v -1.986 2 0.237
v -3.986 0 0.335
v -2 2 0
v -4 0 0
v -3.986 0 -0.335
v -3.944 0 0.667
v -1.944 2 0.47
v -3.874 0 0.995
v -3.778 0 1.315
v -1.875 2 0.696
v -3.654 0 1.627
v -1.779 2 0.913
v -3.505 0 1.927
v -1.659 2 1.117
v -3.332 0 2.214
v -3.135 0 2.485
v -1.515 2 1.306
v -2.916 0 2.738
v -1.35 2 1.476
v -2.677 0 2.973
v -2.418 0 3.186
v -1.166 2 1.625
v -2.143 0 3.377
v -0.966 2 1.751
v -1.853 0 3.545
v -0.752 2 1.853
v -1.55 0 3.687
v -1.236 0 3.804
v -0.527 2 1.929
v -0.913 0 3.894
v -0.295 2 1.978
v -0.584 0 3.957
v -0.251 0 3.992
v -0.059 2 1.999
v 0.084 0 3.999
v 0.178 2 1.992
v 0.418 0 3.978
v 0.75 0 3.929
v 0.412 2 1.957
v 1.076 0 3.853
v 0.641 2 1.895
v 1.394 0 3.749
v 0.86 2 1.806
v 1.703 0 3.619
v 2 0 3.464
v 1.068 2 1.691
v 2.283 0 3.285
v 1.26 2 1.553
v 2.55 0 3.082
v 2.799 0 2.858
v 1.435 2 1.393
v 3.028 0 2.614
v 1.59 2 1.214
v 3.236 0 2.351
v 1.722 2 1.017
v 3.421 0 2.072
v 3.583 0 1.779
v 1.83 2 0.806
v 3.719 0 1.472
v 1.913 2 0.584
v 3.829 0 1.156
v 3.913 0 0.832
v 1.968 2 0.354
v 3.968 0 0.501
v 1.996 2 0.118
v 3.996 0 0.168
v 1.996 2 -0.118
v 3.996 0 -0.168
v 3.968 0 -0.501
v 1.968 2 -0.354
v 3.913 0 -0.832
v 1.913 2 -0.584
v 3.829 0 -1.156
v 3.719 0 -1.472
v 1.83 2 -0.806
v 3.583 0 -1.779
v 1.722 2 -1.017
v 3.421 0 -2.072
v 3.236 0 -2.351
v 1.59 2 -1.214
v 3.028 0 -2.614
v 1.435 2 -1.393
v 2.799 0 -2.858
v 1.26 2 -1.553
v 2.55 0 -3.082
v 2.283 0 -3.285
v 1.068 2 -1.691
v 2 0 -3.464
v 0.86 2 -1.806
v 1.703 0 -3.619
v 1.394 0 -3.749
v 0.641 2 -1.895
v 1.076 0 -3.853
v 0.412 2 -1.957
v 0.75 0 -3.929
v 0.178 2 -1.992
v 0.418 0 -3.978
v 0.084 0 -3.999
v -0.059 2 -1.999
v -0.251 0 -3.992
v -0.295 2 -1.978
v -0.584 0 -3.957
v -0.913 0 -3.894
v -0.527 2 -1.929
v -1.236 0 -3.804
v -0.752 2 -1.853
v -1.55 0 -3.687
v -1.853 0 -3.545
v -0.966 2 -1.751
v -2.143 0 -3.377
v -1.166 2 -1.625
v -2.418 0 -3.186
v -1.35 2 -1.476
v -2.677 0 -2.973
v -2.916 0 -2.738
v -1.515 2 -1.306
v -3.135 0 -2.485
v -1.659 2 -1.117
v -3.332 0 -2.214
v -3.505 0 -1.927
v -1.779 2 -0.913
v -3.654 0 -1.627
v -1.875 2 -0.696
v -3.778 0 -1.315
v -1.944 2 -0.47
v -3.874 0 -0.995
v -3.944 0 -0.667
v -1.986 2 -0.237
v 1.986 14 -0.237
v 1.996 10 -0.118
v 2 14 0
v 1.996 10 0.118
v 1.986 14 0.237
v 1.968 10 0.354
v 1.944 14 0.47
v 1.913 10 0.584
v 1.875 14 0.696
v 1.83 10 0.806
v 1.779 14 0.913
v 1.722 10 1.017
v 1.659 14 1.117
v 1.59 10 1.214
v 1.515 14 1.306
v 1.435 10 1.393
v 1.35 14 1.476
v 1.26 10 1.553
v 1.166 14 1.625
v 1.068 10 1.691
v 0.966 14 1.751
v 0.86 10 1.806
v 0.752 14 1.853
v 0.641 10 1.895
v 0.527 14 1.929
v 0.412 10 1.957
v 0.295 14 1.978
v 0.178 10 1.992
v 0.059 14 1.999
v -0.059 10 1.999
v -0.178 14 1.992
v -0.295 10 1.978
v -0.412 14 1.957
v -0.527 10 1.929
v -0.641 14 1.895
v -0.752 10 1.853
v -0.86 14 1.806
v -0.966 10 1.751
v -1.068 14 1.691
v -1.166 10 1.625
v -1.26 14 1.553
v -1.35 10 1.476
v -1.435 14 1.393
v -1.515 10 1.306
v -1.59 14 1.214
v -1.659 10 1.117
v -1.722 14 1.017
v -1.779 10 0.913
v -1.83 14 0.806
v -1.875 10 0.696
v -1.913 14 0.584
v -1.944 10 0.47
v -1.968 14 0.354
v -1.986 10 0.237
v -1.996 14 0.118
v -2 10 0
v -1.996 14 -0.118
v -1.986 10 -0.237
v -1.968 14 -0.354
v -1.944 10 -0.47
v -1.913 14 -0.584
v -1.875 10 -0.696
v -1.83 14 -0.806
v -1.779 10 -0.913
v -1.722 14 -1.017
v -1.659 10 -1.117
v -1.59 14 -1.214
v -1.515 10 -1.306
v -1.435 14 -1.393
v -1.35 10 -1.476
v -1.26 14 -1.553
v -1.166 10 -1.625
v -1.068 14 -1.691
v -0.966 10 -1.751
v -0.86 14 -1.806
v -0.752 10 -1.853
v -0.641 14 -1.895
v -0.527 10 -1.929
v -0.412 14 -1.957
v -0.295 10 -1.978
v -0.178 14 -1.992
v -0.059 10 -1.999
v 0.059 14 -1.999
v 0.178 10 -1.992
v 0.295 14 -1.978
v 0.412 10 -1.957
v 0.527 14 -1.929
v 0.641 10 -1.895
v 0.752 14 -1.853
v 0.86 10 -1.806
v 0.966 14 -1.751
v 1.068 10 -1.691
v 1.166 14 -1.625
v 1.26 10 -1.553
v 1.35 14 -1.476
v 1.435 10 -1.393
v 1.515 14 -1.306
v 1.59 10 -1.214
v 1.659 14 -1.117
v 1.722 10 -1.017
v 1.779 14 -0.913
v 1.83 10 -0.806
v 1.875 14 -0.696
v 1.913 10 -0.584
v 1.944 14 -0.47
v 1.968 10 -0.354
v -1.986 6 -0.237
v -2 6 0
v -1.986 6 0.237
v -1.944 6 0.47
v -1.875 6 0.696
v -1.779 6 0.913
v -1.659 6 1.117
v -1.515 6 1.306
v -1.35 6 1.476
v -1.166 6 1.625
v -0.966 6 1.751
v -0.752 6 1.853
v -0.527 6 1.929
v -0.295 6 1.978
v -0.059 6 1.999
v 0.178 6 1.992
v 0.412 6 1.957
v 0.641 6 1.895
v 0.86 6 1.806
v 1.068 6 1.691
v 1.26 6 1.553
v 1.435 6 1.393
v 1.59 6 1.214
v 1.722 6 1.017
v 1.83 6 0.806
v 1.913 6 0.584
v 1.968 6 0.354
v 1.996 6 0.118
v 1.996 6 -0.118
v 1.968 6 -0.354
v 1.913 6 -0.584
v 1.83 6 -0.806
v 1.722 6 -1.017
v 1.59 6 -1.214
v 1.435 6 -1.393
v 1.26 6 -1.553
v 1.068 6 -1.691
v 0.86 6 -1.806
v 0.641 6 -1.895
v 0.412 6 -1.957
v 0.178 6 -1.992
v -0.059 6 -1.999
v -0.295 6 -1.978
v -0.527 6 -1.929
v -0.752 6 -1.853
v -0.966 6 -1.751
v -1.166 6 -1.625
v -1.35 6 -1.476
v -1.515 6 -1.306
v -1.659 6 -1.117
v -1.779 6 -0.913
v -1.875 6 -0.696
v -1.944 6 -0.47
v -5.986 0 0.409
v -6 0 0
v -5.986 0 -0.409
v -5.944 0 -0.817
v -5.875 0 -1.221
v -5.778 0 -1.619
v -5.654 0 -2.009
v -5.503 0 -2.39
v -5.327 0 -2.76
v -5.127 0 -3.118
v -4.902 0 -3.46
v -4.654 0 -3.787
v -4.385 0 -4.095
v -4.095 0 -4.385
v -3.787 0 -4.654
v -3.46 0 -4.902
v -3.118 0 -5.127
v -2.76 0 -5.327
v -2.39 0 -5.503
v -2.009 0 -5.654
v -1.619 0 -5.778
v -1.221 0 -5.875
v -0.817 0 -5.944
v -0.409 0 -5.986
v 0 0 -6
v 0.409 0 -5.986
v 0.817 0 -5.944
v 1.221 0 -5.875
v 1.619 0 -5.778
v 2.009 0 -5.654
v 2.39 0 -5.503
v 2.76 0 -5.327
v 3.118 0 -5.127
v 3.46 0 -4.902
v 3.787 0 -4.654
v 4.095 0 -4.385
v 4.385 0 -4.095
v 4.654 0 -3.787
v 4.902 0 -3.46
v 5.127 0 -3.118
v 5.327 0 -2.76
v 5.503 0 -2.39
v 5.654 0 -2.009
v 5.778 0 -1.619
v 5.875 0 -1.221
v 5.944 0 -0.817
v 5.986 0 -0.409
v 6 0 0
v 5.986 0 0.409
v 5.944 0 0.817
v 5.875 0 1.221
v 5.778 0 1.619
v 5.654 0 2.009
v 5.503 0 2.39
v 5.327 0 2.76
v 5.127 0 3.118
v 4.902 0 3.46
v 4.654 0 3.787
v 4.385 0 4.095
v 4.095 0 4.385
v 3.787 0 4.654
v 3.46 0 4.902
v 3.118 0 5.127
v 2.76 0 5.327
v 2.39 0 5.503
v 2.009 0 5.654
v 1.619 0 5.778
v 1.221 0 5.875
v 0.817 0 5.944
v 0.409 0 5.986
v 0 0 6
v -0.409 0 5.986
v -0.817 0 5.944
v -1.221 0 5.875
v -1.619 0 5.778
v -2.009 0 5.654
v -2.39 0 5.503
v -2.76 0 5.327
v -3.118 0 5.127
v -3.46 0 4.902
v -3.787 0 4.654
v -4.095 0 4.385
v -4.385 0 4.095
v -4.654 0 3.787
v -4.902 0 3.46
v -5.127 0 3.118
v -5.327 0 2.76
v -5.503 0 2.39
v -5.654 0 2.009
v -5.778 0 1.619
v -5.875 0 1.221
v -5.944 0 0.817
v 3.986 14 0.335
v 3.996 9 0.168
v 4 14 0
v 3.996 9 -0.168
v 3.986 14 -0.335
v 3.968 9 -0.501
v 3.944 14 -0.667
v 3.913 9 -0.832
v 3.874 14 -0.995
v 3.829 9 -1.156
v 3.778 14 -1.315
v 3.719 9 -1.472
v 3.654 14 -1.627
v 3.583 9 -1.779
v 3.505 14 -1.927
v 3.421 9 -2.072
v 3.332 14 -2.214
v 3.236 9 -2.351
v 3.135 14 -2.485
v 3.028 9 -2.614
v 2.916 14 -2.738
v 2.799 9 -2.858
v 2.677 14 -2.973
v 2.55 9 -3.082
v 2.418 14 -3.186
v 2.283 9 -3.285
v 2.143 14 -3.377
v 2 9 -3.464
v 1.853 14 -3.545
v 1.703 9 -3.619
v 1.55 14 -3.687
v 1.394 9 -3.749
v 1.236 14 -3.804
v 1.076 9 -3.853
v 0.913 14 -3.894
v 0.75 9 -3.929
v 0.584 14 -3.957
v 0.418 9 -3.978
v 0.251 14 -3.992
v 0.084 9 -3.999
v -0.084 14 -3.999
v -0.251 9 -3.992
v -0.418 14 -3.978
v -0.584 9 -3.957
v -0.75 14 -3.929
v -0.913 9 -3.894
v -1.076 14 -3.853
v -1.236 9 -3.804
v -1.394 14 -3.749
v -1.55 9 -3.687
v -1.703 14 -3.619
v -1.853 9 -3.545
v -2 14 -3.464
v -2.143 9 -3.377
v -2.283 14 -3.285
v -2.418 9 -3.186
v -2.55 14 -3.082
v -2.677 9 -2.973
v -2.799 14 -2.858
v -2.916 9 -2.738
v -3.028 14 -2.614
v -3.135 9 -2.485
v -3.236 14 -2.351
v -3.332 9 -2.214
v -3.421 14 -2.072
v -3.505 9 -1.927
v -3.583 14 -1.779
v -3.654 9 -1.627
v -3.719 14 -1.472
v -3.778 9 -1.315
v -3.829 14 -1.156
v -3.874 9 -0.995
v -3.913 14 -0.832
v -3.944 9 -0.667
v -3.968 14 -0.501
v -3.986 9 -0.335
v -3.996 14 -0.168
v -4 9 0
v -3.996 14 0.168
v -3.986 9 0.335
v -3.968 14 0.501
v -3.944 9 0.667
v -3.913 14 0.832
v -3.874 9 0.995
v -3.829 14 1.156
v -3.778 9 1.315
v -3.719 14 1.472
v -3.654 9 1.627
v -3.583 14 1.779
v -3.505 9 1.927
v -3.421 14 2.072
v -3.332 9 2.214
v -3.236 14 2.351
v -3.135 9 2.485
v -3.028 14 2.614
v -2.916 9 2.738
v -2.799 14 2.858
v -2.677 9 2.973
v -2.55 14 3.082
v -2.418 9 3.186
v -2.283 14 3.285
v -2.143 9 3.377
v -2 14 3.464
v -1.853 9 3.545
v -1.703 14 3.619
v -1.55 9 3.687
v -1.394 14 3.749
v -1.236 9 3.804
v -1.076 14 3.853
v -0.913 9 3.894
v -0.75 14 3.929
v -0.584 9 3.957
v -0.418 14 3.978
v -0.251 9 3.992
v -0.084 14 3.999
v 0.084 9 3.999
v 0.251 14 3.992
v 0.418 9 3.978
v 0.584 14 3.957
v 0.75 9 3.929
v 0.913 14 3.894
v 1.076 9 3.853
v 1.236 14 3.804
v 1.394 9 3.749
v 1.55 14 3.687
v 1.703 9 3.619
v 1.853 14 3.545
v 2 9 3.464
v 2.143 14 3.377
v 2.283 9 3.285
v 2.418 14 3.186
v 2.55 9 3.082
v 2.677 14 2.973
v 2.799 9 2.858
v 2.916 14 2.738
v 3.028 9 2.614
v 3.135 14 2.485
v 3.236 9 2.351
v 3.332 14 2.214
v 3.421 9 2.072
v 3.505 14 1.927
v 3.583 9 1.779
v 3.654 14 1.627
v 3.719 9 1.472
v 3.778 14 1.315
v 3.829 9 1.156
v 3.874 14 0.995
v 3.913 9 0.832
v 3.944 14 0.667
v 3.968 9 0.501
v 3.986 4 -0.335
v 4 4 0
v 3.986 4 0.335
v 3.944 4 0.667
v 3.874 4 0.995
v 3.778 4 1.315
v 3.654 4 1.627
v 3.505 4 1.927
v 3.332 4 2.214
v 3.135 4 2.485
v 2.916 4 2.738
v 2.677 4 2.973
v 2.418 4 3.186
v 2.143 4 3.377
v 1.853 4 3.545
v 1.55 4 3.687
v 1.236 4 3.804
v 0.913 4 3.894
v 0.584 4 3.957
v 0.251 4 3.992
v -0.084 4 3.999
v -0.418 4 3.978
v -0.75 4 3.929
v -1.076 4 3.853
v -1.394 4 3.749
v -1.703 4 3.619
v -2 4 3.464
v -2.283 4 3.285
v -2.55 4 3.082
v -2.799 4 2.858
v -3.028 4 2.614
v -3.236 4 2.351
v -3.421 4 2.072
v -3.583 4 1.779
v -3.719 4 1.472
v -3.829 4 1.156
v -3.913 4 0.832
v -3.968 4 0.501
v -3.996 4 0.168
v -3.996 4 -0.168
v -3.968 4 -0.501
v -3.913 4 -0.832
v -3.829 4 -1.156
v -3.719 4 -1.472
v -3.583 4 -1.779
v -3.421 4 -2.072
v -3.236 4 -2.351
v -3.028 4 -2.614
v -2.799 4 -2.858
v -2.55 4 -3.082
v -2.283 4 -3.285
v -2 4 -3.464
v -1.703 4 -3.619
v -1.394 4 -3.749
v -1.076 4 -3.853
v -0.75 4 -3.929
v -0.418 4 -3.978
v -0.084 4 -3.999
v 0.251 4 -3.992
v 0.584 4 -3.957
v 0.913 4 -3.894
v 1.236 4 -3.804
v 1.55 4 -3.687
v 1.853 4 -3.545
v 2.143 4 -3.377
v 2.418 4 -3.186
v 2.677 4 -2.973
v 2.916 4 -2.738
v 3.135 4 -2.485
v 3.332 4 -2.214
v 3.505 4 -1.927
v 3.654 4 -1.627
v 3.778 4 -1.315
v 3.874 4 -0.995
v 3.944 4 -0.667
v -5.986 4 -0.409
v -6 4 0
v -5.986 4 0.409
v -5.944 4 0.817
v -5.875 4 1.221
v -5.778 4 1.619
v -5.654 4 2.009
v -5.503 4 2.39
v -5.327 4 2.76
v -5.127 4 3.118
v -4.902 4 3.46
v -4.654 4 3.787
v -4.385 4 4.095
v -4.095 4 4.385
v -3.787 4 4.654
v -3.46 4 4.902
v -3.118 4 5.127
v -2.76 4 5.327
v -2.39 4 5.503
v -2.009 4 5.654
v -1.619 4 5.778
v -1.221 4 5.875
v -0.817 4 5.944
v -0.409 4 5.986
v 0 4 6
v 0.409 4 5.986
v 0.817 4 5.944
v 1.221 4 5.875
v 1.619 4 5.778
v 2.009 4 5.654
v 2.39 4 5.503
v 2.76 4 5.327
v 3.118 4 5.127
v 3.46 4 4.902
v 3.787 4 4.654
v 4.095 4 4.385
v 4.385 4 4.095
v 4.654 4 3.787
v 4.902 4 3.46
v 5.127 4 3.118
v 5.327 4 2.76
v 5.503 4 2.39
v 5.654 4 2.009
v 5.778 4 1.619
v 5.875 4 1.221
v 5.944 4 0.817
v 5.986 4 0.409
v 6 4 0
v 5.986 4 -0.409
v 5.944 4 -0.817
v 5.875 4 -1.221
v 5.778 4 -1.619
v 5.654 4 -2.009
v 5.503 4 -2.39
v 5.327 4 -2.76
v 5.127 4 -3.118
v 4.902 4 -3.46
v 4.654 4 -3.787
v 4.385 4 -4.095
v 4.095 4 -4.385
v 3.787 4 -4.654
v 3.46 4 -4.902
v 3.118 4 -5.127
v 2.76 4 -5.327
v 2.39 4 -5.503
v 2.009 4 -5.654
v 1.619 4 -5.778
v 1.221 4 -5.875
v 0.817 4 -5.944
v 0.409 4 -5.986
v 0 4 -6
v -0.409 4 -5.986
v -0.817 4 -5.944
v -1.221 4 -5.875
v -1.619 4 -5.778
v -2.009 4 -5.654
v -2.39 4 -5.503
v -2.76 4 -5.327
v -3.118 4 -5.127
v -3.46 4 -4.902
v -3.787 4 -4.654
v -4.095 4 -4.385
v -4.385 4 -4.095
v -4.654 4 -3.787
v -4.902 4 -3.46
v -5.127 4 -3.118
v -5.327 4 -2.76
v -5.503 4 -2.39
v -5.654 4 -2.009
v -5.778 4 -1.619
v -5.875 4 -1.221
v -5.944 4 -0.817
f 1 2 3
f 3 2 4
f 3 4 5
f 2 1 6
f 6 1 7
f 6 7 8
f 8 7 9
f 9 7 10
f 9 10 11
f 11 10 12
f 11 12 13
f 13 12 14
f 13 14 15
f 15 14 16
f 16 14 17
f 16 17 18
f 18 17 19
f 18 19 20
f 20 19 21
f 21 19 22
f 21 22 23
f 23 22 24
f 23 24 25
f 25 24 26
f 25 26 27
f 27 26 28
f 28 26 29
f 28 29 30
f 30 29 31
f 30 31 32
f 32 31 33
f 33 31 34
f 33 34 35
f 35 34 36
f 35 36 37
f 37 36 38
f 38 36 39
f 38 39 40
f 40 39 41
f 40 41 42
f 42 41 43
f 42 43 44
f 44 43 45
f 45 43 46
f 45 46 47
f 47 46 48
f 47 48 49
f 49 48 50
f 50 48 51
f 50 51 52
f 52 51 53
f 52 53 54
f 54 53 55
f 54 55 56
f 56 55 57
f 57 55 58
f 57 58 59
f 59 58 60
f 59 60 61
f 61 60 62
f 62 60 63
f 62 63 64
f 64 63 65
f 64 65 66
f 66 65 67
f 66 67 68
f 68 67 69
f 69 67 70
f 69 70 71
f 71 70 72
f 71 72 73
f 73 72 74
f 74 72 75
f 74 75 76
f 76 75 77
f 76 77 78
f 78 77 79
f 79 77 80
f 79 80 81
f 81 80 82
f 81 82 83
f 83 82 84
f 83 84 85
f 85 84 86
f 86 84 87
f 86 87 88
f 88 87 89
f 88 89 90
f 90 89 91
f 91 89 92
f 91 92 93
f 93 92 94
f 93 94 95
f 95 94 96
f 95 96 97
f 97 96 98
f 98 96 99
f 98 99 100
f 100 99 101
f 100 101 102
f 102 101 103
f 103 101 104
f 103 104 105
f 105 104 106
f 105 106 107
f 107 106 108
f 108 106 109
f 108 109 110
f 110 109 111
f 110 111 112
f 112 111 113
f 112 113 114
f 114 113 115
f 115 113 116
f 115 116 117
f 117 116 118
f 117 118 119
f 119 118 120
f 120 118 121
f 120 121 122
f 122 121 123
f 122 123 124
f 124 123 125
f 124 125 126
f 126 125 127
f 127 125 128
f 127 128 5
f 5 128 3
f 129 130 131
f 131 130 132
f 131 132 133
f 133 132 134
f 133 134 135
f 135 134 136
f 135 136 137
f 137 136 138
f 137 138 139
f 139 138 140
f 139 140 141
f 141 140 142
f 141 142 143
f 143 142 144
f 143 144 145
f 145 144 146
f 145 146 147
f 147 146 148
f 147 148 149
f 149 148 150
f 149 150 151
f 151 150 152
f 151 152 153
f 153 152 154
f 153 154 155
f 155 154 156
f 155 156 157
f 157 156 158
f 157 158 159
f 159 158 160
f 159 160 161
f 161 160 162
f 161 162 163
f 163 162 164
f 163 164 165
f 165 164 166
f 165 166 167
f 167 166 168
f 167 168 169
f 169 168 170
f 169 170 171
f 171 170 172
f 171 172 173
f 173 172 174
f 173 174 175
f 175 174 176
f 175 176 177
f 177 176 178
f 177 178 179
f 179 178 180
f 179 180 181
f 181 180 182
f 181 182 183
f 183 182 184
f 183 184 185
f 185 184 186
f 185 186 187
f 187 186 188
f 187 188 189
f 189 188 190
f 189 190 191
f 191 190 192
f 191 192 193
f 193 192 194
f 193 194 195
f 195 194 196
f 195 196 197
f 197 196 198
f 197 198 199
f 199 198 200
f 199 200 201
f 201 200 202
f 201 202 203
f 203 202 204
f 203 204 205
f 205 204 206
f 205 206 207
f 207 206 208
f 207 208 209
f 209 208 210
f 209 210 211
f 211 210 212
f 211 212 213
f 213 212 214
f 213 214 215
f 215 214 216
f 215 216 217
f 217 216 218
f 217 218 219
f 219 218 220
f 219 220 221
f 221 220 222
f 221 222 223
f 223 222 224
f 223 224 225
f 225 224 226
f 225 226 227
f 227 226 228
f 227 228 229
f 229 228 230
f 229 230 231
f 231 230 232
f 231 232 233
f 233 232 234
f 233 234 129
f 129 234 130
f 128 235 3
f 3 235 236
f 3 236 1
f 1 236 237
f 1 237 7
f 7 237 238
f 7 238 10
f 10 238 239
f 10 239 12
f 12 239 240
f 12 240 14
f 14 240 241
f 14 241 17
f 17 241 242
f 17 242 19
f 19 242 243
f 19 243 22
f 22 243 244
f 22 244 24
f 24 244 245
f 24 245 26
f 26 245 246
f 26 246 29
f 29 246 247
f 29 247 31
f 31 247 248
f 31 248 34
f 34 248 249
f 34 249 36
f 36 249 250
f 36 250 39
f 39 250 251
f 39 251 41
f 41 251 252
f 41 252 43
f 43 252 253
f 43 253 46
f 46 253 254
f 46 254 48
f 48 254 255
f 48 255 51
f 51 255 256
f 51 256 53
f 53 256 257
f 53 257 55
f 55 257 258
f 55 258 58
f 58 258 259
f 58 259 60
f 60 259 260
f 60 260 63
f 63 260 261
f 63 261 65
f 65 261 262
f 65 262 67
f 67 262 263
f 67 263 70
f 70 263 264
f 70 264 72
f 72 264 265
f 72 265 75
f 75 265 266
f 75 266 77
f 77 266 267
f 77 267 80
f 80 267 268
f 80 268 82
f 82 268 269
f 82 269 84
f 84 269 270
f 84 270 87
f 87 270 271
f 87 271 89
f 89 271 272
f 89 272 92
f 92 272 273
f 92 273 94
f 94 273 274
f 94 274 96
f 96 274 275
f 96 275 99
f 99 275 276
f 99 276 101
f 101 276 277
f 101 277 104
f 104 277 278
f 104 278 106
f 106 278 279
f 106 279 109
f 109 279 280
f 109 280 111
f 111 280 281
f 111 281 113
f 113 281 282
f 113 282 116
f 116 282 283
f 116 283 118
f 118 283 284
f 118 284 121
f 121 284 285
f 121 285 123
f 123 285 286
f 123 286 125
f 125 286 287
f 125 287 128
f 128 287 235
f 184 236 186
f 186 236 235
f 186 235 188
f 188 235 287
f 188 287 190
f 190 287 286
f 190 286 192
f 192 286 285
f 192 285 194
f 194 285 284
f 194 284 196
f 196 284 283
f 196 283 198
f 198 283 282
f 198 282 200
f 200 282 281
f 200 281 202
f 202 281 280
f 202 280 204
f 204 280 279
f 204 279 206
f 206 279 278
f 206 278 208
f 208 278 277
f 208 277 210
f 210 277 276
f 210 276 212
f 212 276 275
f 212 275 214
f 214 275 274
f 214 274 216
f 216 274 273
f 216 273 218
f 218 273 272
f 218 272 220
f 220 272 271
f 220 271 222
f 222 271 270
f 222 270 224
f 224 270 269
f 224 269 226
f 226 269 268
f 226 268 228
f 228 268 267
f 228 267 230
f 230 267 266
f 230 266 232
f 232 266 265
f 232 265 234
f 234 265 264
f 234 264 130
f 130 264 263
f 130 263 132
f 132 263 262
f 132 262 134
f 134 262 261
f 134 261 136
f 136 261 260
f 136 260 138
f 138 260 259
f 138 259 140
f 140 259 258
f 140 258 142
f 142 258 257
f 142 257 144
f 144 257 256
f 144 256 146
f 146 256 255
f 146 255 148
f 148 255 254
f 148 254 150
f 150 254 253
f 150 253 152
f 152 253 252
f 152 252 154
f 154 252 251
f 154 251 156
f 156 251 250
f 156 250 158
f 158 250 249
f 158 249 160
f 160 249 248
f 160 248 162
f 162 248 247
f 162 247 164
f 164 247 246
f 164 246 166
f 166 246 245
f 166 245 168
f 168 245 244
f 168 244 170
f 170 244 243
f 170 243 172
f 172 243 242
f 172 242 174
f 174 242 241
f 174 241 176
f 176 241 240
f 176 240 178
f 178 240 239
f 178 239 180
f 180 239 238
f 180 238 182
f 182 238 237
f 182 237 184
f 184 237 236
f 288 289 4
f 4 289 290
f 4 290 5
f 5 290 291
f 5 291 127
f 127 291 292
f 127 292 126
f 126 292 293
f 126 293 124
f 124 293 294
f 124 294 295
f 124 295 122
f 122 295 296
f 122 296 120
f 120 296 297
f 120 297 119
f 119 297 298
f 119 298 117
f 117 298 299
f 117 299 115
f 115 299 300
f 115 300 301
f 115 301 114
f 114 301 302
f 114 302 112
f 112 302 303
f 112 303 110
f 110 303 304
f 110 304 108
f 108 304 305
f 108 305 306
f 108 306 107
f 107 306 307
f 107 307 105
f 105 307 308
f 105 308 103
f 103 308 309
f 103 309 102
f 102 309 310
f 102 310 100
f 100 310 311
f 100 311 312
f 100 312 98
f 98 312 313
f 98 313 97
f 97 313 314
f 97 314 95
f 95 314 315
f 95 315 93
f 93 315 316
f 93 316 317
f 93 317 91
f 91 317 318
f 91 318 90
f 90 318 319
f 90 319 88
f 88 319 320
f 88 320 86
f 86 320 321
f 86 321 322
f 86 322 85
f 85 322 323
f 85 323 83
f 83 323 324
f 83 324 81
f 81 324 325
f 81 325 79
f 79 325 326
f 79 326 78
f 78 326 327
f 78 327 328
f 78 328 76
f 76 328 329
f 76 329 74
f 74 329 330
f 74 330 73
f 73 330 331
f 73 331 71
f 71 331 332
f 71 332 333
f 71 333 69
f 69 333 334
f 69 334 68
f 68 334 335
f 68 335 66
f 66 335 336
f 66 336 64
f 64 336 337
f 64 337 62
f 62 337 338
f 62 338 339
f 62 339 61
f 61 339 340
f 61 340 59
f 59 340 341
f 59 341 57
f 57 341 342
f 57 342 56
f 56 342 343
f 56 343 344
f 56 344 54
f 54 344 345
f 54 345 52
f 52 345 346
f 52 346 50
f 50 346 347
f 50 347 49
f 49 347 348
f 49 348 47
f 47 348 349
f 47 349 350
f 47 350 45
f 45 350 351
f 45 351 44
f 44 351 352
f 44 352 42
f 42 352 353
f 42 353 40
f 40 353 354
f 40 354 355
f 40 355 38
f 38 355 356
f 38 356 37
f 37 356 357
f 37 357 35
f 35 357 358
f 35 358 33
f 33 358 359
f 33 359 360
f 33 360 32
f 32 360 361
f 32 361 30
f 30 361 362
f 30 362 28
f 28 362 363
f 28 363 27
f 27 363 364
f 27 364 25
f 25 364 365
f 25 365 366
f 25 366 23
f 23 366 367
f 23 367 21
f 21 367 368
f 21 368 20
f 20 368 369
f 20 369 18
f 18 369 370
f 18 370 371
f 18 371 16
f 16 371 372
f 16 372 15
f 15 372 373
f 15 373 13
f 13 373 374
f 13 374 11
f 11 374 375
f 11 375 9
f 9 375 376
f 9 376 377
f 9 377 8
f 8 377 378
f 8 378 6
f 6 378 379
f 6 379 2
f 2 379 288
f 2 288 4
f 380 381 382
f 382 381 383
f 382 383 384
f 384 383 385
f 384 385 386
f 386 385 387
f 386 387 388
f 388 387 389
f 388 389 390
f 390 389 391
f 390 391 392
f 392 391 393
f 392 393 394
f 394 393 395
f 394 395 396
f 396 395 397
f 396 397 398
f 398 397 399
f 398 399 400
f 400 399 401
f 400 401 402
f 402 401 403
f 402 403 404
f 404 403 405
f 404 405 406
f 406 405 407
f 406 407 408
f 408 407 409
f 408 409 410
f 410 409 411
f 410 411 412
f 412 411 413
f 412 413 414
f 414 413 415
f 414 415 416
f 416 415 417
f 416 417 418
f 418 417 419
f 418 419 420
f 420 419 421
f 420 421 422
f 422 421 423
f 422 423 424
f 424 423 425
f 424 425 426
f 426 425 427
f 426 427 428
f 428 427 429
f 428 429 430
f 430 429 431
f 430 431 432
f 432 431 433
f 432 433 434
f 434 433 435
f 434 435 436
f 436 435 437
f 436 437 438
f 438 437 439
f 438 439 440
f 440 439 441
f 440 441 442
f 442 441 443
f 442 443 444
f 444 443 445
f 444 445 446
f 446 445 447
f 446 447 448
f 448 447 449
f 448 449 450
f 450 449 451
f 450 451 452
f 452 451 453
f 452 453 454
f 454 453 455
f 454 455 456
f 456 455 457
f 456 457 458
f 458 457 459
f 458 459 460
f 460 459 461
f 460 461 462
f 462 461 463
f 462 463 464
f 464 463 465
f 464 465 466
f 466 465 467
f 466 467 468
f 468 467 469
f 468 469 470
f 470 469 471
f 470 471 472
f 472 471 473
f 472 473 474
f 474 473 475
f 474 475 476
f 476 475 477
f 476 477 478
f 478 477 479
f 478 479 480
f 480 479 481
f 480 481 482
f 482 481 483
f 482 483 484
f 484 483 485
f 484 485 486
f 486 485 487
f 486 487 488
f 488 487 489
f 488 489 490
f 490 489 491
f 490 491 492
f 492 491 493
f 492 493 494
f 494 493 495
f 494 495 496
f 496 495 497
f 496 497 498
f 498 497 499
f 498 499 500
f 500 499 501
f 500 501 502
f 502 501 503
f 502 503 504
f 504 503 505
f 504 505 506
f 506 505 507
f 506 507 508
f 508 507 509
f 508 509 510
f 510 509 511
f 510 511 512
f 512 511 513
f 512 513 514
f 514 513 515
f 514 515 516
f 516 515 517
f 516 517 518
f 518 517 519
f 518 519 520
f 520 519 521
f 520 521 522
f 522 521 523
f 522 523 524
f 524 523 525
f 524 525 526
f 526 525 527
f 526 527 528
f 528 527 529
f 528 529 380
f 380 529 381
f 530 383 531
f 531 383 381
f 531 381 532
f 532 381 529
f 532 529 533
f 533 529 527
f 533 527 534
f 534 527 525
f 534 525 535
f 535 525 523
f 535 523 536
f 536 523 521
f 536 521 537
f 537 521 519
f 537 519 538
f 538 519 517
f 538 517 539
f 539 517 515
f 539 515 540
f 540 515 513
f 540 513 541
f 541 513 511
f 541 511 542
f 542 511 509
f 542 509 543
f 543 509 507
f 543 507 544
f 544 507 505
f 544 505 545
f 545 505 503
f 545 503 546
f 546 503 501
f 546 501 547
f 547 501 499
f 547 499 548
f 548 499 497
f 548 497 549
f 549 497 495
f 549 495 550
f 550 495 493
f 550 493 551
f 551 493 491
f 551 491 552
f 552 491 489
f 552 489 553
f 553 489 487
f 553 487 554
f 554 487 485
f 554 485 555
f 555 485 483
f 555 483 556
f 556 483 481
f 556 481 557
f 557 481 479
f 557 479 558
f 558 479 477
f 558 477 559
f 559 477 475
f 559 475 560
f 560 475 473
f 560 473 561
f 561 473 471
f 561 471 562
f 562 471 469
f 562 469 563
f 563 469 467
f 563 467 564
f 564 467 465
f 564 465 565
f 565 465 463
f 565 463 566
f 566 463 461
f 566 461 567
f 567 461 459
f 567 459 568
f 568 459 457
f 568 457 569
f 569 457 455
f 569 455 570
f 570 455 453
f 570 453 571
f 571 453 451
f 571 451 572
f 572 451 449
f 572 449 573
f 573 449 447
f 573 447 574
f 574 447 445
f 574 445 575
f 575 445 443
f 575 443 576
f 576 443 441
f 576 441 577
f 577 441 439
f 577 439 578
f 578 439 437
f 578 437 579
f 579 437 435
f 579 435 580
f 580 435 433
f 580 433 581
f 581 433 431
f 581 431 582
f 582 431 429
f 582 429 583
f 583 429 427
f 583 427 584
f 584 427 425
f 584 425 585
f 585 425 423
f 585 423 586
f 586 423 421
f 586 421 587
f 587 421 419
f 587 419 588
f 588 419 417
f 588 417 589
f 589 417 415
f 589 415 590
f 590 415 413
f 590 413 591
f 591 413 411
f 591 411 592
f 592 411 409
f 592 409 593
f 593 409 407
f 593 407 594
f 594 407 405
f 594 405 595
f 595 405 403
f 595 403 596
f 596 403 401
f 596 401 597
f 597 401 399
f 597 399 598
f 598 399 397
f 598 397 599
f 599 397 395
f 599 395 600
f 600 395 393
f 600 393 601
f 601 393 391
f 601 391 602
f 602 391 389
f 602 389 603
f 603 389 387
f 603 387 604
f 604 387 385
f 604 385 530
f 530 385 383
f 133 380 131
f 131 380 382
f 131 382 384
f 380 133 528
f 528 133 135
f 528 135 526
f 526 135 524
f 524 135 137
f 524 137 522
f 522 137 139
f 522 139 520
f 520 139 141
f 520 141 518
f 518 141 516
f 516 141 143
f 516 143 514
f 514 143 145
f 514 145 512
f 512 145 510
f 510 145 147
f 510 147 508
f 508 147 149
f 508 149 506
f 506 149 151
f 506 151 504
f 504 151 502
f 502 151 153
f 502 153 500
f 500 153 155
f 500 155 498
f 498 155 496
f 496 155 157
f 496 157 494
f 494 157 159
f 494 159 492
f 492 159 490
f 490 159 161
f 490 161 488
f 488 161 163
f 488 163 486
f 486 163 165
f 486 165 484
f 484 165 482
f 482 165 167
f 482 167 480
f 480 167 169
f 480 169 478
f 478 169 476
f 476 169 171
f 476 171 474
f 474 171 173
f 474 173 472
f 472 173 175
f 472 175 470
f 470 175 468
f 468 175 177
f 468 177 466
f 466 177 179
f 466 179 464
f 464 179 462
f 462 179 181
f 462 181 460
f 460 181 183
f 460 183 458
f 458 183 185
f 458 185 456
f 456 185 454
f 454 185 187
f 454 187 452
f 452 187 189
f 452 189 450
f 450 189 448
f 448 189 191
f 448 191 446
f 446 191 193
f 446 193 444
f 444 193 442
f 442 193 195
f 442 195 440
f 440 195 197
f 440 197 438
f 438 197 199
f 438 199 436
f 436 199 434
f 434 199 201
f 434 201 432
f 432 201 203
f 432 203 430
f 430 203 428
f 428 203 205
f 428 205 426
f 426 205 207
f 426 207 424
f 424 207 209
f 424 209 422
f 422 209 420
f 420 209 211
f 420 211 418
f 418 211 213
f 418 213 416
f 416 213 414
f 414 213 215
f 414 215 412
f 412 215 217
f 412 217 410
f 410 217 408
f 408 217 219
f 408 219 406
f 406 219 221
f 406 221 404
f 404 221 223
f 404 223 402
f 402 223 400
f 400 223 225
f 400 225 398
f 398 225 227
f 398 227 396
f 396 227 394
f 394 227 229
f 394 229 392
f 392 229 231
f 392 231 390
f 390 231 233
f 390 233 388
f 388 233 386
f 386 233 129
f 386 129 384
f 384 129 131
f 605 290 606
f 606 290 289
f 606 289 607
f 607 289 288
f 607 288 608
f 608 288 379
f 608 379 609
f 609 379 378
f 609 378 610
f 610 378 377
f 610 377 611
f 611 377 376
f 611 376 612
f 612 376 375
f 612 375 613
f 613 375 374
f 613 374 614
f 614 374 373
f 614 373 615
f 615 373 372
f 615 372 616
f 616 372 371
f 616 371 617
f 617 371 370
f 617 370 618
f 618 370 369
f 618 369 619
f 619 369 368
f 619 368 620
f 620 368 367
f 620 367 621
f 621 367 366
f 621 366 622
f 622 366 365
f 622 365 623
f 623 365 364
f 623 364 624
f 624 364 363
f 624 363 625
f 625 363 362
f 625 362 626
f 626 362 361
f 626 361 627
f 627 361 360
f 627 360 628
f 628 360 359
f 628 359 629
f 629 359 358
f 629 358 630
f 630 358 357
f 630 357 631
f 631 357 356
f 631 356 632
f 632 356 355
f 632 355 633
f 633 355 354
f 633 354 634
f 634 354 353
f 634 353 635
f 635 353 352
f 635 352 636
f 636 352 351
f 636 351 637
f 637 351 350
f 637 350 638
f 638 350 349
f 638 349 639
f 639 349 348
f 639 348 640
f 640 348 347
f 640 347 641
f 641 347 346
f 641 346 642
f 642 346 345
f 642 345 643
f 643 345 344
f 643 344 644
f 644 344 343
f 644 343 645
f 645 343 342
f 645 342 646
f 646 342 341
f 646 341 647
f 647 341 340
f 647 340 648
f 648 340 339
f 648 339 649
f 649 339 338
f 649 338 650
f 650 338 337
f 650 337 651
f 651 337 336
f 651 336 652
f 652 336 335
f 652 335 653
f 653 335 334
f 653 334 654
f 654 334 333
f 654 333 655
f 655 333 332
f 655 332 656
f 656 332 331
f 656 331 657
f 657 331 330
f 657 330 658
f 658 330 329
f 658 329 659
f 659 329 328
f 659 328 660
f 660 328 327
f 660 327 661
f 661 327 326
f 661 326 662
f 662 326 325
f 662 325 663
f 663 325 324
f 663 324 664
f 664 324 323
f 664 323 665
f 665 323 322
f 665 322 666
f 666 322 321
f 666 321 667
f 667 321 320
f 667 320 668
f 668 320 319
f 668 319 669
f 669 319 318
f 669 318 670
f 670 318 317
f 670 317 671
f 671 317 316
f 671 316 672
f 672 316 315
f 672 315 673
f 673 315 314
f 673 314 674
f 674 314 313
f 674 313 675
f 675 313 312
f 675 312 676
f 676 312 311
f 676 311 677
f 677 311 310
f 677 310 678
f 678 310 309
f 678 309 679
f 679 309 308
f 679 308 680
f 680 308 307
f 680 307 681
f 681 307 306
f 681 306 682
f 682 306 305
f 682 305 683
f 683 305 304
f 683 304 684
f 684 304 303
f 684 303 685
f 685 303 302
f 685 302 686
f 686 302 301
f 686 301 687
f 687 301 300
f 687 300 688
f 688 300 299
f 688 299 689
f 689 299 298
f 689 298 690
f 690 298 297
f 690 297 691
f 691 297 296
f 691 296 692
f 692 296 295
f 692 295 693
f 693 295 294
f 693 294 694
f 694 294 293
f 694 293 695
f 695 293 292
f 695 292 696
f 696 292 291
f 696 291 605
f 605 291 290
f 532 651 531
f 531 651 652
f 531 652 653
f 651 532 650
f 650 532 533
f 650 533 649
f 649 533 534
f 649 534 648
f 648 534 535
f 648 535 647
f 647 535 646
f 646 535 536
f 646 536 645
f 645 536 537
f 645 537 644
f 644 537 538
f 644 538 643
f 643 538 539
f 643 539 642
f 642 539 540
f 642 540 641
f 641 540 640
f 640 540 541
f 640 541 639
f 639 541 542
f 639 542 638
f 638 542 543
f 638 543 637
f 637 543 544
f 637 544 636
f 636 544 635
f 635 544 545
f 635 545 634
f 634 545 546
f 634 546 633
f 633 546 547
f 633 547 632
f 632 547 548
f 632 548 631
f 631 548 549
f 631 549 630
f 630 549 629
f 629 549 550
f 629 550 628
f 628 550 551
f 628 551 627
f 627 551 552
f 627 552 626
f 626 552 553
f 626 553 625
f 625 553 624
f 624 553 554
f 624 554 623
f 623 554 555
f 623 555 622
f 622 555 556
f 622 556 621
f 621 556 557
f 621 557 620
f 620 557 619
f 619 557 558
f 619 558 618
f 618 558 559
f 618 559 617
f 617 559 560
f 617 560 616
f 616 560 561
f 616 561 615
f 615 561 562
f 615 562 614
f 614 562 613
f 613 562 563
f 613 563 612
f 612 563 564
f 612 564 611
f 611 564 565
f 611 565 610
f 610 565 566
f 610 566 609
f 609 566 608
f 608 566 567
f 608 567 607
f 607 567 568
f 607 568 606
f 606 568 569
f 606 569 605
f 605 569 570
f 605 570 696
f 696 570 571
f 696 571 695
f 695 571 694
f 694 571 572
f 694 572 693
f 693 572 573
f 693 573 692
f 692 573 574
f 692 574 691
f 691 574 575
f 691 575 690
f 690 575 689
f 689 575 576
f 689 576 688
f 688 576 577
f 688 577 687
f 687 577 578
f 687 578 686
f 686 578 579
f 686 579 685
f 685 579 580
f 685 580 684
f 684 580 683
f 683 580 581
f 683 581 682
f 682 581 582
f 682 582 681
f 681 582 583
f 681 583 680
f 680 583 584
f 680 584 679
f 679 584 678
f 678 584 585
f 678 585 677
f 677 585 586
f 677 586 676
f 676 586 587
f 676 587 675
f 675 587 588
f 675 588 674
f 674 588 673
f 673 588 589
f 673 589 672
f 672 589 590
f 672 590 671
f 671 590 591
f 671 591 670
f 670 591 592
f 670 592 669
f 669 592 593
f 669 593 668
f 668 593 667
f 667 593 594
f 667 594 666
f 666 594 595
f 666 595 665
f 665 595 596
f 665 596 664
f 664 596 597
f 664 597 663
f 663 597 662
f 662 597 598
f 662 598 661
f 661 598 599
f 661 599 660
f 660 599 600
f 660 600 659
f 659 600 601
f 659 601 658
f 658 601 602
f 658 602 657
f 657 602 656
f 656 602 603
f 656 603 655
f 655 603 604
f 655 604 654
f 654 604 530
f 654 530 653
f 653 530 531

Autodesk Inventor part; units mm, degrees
ref_plane "YZ Plane" through (0, 0, 0) normal (1, 0, 0) x (0, 1, 0)
ref_plane "XZ Plane" through (0, 0, 0) normal (0, 1, 0) x (-1, 0, 0)
ref_plane "XY Plane" through (0, 0, 0) normal (0, 0, 1) x (1, 0, 0)
sketch "Sketch1" plane through (0, 0, 0) normal (0, 1, 0) x (-1, 0, 0)
  circle A0 centre (0, 0) radius 6
  dimension "d0" = 12
extrude "Extrusion1" add sketch "Sketch1" along normal blind 4
sketch "Sketch2" plane through (0, 4, 0) normal (0, 1, 0) x (1, 0, 0)
  circle A0 centre (0, 0) radius 4
  dimension "d3" = 8
extrude "Extrusion2" add sketch "Sketch2" along normal blind 10
sketch "Sketch3" plane through (0, 14, 0) normal (0, 1, 0) x (1, 0, 0)
  circle A0 centre (0, 0) radius 2
  dimension "d6" = 4
extrude "Extrusion3" cut sketch "Sketch3" against normal through all
chamfer "Chamfer1" distance 2 angle 45 1 edges at (-2, 0, 0)
properties part number "tube_long"
